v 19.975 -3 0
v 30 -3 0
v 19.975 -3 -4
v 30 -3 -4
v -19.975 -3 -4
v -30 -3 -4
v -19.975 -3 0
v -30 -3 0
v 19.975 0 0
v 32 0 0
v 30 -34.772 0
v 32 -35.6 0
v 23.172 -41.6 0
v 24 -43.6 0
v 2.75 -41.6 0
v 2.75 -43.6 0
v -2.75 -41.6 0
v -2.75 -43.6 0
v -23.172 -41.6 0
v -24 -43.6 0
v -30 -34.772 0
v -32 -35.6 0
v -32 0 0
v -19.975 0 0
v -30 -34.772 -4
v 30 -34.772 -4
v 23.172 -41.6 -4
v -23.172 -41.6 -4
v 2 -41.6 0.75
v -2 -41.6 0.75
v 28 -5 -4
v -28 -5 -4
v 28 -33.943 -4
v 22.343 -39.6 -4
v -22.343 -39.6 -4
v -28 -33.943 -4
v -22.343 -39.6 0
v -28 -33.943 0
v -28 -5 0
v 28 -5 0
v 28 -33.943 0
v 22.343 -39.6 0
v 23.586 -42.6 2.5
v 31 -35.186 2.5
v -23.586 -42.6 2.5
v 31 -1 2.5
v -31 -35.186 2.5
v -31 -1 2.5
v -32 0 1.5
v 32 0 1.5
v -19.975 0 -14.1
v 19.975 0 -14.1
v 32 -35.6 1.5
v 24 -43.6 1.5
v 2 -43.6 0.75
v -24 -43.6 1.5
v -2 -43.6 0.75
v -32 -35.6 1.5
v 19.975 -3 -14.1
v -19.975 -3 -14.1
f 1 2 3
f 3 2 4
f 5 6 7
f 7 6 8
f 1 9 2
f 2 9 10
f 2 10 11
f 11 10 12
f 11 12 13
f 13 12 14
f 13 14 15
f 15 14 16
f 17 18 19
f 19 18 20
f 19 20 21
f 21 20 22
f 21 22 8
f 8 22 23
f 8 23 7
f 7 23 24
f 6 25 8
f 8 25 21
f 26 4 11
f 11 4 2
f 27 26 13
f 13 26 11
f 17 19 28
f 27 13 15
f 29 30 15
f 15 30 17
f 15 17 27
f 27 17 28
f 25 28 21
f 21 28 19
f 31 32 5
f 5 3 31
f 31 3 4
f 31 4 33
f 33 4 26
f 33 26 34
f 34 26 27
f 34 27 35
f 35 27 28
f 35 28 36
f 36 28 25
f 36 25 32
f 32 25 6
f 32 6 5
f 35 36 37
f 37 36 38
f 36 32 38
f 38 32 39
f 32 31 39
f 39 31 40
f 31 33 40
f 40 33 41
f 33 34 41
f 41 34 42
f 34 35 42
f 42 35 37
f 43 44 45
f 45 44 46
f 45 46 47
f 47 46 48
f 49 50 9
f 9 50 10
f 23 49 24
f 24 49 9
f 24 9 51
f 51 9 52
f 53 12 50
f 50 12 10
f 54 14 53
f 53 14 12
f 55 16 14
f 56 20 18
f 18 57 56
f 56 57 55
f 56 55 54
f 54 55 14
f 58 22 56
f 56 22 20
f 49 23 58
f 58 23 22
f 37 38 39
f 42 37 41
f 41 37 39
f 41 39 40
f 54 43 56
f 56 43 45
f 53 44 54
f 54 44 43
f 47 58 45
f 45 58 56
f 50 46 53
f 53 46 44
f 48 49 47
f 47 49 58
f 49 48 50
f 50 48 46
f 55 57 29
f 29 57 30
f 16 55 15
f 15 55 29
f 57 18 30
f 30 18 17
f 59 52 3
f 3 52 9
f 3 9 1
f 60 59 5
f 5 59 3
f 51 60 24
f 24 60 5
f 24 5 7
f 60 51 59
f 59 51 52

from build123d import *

# Parameters (mm, degrees)
BOSS_EXTRUDE1_DEPTH = 4
BOSS_EXTRUDE2_DEPTH = 2.5
CHAMFER1_SIZE       = 1
SKETCH4_W           = 6
SKETCH4_H           = 1.5
CUT_EXTRUDE1_DEPTH  = 2.0001
CHAMFER2_SIZE       = 1
SKETCH5_W           = 39.95
SKETCH5_H           = 3.0001
BOSS_EXTRUDE3_DEPTH = 14.1


with BuildPart() as part:
    # Sketch2 → Boss-Extrude1 (new body)
    with BuildSketch(Plane.XY):
        Polygon((-29.9999, -3.0001), (29.9999, -3.0001), (29.9999, -34.771531454), (23.171531454, -41.5999), (-23.171531454, -41.5999), (-29.9999, -34.771531454), align=None)
        Polygon((-28, -33.943145751), (-28, -5), (28, -5), (28, -33.943145751), (22.343145751, -39.6), (-22.343145751, -39.6), align=None, mode=Mode.SUBTRACT)
    extrude(amount=-BOSS_EXTRUDE1_DEPTH)

    # Sketch3 → Boss-Extrude2 (add)
    with BuildSketch(Plane.XY):
        Polygon((-32, 0), (32, 0), (32, -35.6), (24, -43.6), (-24, -43.6), (-32, -35.6), align=None)
    extrude(amount=BOSS_EXTRUDE2_DEPTH)

    # Chamfer1
    chamfer1_edges = [part.edges().sort_by_distance(p)[0] for p in [
        (-32, -17.8, 2.5),
        (-28, -39.6, 2.5),
        (0, -43.6, 2.5),
        (28, -39.6, 2.5),
        (32, -17.8, 2.5),
        (0, 0, 2.5),
    ]]
    chamfer(chamfer1_edges, length=CHAMFER1_SIZE)

    # Sketch4 → Cut-Extrude1 (cut)
    with BuildSketch(Plane.XZ.offset(43.6)):
        Rectangle(SKETCH4_W, SKETCH4_H)
    extrude(amount=-CUT_EXTRUDE1_DEPTH, mode=Mode.SUBTRACT)

    # Chamfer2
    # the kernel refuses this chamfer: 1 mm, written as the material it adds along each edge
    with BuildSketch(Plane(origin=(3, -43.6, 0.75), x_dir=(0.027495876610586487, 0, -0.9996219169112968), z_dir=(0, 1, 0))) as chamfer2_piece_1_section:
        Polygon((CHAMFER2_SIZE * 0.999621916911, CHAMFER2_SIZE * 0.0274958766106), (-CHAMFER2_SIZE * 0.0274958766106, CHAMFER2_SIZE * 0.999621916911), (0, 0), align=None)
    chamfer2_piece_1 = extrude(amount=4.571782988, mode=Mode.PRIVATE)
    chamfer2_piece_1 = split(chamfer2_piece_1, bisect_by=Plane(origin=(2.65, -42.59995, 0), z_dir=(0, 0, 1)), keep=Keep.TOP, mode=Mode.PRIVATE)
    add(chamfer2_piece_1)
    with BuildSketch(Plane(origin=(-3, -43.6, 0.75), x_dir=(-0.027495876610586487, 0, -0.9996219169112968), z_dir=(0, 1, 0))) as chamfer2_piece_2_section:
        Polygon((CHAMFER2_SIZE * 0.999621916911, -CHAMFER2_SIZE * 0.0274958766106), (-CHAMFER2_SIZE * 0.0274958766106, -CHAMFER2_SIZE * 0.999621916911), (0, 0), align=None)
    chamfer2_piece_2 = extrude(amount=4.571782988, mode=Mode.PRIVATE)
    chamfer2_piece_2 = split(chamfer2_piece_2, bisect_by=Plane(origin=(-2.65, -42.59995, 0), z_dir=(0, 0, 1)), keep=Keep.TOP, mode=Mode.PRIVATE)
    add(chamfer2_piece_2)

    # Sketch5 → Boss-Extrude3 (add)
    with BuildSketch(Plane(origin=(0, 0, 0), x_dir=(-1, 0, 0), z_dir=(0, 0, -1))):
        with Locations((0, -1.50005)):
            Rectangle(SKETCH5_W, SKETCH5_H)
    extrude(amount=BOSS_EXTRUDE3_DEPTH)


solid = part.part
